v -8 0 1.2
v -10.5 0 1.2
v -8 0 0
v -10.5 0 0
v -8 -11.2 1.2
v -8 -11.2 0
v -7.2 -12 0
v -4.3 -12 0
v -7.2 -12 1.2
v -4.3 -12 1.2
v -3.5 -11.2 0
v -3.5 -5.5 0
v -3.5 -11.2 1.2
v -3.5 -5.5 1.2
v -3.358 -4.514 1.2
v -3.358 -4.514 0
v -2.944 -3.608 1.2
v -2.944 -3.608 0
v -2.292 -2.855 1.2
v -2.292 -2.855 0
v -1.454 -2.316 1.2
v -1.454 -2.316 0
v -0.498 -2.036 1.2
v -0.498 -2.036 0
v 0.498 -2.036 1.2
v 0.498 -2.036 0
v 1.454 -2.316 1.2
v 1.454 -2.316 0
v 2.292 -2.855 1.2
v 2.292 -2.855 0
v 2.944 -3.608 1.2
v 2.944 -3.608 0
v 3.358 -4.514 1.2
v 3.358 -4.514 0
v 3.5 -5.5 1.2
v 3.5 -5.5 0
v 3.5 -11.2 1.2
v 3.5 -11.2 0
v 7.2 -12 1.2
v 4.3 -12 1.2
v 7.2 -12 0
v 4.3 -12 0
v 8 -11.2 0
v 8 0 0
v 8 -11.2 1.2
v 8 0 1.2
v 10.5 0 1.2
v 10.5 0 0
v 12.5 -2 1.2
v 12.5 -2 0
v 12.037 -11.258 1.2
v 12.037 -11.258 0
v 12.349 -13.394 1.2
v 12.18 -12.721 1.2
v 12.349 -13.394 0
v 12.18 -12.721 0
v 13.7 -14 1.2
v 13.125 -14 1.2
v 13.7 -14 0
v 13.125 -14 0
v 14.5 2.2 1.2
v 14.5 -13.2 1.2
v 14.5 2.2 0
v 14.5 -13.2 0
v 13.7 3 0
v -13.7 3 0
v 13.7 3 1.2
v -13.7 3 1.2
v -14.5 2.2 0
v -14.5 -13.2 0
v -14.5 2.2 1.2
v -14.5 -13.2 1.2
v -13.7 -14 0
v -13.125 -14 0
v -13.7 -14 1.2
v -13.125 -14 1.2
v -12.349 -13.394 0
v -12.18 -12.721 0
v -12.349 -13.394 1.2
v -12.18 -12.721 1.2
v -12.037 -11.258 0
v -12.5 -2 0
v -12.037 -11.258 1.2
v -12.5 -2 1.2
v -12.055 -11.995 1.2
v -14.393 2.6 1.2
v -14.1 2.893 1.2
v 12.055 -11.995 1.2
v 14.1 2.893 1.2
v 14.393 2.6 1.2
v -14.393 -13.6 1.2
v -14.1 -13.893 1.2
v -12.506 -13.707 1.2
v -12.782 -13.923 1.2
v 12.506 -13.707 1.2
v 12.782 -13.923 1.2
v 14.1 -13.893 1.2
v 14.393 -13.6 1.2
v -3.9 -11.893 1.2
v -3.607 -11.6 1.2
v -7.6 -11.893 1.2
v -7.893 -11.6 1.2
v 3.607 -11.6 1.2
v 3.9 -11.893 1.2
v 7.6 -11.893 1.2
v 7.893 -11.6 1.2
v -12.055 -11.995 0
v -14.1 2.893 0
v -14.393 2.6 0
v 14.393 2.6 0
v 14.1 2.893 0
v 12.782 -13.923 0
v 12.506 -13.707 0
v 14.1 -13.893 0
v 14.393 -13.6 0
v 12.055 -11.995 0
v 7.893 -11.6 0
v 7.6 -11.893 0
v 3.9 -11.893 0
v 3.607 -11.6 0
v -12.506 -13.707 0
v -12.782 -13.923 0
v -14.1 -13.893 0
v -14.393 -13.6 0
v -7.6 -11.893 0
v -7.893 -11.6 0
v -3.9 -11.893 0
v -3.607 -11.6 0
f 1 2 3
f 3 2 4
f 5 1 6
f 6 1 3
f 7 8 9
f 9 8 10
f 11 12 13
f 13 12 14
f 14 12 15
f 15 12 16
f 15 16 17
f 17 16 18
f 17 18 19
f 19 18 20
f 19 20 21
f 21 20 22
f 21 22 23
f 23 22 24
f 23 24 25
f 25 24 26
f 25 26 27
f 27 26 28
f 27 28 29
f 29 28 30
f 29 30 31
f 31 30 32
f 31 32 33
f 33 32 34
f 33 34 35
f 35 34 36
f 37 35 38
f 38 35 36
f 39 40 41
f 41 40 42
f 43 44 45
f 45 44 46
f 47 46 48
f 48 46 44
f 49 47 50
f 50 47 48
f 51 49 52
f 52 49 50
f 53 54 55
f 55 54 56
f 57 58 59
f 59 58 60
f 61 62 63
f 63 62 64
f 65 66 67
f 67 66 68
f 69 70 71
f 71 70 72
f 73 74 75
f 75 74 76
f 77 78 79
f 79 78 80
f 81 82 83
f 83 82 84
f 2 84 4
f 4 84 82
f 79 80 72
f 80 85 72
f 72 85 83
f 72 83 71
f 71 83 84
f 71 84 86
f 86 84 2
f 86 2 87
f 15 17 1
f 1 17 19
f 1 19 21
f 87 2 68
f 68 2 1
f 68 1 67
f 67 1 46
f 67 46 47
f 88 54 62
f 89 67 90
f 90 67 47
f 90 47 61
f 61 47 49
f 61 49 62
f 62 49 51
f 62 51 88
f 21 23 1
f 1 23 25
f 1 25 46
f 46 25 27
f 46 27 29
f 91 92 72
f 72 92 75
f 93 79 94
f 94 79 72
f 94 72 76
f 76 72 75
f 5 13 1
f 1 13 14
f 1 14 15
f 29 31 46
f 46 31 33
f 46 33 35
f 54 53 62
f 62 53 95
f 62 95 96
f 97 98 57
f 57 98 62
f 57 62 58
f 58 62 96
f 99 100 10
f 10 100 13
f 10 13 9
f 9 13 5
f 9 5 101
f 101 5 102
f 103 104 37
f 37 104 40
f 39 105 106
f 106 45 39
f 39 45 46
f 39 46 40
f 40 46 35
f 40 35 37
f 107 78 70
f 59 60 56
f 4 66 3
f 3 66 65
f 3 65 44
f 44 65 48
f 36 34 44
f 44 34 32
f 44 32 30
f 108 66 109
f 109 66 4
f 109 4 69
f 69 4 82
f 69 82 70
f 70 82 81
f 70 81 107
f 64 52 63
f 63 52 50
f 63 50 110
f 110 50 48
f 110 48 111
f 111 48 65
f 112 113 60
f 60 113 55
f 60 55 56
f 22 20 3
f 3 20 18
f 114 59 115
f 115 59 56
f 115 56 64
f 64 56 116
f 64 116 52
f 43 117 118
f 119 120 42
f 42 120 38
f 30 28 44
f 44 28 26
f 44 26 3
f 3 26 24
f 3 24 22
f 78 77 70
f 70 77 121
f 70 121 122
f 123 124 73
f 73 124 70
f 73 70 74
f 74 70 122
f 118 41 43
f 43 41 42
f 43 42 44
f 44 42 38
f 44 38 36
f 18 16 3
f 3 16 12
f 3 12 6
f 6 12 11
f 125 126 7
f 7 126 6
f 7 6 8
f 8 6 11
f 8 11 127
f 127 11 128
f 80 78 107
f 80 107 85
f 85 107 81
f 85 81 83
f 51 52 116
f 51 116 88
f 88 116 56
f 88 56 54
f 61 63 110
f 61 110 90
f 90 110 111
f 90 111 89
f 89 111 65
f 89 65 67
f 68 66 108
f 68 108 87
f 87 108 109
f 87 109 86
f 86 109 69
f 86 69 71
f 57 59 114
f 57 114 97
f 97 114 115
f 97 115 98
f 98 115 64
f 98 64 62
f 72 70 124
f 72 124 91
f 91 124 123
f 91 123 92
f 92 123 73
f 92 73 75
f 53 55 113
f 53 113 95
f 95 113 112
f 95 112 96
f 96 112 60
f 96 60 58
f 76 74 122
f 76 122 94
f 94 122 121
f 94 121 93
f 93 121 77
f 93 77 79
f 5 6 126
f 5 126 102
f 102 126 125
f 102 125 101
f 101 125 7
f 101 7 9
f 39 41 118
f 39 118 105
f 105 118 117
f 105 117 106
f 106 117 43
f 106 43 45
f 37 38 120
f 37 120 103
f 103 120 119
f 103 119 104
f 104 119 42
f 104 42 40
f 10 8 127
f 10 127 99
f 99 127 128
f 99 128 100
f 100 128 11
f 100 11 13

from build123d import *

# Parameters (mm, degrees)
BOSS_EXTRUDE1_DEPTH = 1.2
FILLET1_R           = 5
FILLET2_R           = 0.8


with BuildPart() as part:
    # Sketch1 → Boss-Extrude1 (new body)
    with BuildSketch(Plane.XY):
        with BuildLine():
            Line((-10.5, 0), (-12.5, -2))
            Line((-12.5, -2), (-12, -12))
            Line((-12, -12), (-12.5, -14))
            Line((-12.5, -14), (-14.5, -14))
            Line((-14.5, -14), (-14.5, 3))
            Line((-14.5, 3), (-12.5, 3))
            Line((-12.5, 3), (12.5, 3))
            Line((12.5, 3), (14.5, 3))
            Line((14.5, 3), (14.5, -14))
            Line((14.5, -14), (12.5, -14))
            Line((12.5, -14), (12, -12))
            Line((12, -12), (12.5, -2))
            Line((12.5, -2), (10.5, 0))
            Line((10.5, 0), (8, 0))
            Line((8, 0), (8, -12))
            Line((8, -12), (3.5, -12))
            Line((3.5, -12), (3.5, -5.5))
            ThreePointArc((3.5, -5.5), (0, -2), (-3.5, -5.5))
            Line((-3.5, -5.5), (-3.5, -12))
            Line((-3.5, -12), (-8, -12))
            Line((-8, -12), (-8, 0))
            Line((-8, 0), (-10.5, 0))
        make_face()
    extrude(amount=BOSS_EXTRUDE1_DEPTH)

    # Fillet1
    fillet1_edges = [part.edges().sort_by_distance(p)[0] for p in [
        (-12, -12, 0.6),
        (12, -12, 0.6),
    ]]
    fillet(fillet1_edges, radius=FILLET1_R)

    # Fillet2
    fillet2_edges = [part.edges().sort_by_distance(p)[0] for p in [
        (-12.5, -14, 0.6),
        (-14.5, -14, 0.6),
        (-14.5, 3, 0.6),
        (14.5, 3, 0.6),
        (14.5, -14, 0.6),
        (12.5, -14, 0.6),
        (8, -12, 0.6),
        (3.5, -12, 0.6),
        (-3.5, -12, 0.6),
        (-8, -12, 0.6),
    ]]
    fillet(fillet2_edges, radius=FILLET2_R)


solid = part.part
